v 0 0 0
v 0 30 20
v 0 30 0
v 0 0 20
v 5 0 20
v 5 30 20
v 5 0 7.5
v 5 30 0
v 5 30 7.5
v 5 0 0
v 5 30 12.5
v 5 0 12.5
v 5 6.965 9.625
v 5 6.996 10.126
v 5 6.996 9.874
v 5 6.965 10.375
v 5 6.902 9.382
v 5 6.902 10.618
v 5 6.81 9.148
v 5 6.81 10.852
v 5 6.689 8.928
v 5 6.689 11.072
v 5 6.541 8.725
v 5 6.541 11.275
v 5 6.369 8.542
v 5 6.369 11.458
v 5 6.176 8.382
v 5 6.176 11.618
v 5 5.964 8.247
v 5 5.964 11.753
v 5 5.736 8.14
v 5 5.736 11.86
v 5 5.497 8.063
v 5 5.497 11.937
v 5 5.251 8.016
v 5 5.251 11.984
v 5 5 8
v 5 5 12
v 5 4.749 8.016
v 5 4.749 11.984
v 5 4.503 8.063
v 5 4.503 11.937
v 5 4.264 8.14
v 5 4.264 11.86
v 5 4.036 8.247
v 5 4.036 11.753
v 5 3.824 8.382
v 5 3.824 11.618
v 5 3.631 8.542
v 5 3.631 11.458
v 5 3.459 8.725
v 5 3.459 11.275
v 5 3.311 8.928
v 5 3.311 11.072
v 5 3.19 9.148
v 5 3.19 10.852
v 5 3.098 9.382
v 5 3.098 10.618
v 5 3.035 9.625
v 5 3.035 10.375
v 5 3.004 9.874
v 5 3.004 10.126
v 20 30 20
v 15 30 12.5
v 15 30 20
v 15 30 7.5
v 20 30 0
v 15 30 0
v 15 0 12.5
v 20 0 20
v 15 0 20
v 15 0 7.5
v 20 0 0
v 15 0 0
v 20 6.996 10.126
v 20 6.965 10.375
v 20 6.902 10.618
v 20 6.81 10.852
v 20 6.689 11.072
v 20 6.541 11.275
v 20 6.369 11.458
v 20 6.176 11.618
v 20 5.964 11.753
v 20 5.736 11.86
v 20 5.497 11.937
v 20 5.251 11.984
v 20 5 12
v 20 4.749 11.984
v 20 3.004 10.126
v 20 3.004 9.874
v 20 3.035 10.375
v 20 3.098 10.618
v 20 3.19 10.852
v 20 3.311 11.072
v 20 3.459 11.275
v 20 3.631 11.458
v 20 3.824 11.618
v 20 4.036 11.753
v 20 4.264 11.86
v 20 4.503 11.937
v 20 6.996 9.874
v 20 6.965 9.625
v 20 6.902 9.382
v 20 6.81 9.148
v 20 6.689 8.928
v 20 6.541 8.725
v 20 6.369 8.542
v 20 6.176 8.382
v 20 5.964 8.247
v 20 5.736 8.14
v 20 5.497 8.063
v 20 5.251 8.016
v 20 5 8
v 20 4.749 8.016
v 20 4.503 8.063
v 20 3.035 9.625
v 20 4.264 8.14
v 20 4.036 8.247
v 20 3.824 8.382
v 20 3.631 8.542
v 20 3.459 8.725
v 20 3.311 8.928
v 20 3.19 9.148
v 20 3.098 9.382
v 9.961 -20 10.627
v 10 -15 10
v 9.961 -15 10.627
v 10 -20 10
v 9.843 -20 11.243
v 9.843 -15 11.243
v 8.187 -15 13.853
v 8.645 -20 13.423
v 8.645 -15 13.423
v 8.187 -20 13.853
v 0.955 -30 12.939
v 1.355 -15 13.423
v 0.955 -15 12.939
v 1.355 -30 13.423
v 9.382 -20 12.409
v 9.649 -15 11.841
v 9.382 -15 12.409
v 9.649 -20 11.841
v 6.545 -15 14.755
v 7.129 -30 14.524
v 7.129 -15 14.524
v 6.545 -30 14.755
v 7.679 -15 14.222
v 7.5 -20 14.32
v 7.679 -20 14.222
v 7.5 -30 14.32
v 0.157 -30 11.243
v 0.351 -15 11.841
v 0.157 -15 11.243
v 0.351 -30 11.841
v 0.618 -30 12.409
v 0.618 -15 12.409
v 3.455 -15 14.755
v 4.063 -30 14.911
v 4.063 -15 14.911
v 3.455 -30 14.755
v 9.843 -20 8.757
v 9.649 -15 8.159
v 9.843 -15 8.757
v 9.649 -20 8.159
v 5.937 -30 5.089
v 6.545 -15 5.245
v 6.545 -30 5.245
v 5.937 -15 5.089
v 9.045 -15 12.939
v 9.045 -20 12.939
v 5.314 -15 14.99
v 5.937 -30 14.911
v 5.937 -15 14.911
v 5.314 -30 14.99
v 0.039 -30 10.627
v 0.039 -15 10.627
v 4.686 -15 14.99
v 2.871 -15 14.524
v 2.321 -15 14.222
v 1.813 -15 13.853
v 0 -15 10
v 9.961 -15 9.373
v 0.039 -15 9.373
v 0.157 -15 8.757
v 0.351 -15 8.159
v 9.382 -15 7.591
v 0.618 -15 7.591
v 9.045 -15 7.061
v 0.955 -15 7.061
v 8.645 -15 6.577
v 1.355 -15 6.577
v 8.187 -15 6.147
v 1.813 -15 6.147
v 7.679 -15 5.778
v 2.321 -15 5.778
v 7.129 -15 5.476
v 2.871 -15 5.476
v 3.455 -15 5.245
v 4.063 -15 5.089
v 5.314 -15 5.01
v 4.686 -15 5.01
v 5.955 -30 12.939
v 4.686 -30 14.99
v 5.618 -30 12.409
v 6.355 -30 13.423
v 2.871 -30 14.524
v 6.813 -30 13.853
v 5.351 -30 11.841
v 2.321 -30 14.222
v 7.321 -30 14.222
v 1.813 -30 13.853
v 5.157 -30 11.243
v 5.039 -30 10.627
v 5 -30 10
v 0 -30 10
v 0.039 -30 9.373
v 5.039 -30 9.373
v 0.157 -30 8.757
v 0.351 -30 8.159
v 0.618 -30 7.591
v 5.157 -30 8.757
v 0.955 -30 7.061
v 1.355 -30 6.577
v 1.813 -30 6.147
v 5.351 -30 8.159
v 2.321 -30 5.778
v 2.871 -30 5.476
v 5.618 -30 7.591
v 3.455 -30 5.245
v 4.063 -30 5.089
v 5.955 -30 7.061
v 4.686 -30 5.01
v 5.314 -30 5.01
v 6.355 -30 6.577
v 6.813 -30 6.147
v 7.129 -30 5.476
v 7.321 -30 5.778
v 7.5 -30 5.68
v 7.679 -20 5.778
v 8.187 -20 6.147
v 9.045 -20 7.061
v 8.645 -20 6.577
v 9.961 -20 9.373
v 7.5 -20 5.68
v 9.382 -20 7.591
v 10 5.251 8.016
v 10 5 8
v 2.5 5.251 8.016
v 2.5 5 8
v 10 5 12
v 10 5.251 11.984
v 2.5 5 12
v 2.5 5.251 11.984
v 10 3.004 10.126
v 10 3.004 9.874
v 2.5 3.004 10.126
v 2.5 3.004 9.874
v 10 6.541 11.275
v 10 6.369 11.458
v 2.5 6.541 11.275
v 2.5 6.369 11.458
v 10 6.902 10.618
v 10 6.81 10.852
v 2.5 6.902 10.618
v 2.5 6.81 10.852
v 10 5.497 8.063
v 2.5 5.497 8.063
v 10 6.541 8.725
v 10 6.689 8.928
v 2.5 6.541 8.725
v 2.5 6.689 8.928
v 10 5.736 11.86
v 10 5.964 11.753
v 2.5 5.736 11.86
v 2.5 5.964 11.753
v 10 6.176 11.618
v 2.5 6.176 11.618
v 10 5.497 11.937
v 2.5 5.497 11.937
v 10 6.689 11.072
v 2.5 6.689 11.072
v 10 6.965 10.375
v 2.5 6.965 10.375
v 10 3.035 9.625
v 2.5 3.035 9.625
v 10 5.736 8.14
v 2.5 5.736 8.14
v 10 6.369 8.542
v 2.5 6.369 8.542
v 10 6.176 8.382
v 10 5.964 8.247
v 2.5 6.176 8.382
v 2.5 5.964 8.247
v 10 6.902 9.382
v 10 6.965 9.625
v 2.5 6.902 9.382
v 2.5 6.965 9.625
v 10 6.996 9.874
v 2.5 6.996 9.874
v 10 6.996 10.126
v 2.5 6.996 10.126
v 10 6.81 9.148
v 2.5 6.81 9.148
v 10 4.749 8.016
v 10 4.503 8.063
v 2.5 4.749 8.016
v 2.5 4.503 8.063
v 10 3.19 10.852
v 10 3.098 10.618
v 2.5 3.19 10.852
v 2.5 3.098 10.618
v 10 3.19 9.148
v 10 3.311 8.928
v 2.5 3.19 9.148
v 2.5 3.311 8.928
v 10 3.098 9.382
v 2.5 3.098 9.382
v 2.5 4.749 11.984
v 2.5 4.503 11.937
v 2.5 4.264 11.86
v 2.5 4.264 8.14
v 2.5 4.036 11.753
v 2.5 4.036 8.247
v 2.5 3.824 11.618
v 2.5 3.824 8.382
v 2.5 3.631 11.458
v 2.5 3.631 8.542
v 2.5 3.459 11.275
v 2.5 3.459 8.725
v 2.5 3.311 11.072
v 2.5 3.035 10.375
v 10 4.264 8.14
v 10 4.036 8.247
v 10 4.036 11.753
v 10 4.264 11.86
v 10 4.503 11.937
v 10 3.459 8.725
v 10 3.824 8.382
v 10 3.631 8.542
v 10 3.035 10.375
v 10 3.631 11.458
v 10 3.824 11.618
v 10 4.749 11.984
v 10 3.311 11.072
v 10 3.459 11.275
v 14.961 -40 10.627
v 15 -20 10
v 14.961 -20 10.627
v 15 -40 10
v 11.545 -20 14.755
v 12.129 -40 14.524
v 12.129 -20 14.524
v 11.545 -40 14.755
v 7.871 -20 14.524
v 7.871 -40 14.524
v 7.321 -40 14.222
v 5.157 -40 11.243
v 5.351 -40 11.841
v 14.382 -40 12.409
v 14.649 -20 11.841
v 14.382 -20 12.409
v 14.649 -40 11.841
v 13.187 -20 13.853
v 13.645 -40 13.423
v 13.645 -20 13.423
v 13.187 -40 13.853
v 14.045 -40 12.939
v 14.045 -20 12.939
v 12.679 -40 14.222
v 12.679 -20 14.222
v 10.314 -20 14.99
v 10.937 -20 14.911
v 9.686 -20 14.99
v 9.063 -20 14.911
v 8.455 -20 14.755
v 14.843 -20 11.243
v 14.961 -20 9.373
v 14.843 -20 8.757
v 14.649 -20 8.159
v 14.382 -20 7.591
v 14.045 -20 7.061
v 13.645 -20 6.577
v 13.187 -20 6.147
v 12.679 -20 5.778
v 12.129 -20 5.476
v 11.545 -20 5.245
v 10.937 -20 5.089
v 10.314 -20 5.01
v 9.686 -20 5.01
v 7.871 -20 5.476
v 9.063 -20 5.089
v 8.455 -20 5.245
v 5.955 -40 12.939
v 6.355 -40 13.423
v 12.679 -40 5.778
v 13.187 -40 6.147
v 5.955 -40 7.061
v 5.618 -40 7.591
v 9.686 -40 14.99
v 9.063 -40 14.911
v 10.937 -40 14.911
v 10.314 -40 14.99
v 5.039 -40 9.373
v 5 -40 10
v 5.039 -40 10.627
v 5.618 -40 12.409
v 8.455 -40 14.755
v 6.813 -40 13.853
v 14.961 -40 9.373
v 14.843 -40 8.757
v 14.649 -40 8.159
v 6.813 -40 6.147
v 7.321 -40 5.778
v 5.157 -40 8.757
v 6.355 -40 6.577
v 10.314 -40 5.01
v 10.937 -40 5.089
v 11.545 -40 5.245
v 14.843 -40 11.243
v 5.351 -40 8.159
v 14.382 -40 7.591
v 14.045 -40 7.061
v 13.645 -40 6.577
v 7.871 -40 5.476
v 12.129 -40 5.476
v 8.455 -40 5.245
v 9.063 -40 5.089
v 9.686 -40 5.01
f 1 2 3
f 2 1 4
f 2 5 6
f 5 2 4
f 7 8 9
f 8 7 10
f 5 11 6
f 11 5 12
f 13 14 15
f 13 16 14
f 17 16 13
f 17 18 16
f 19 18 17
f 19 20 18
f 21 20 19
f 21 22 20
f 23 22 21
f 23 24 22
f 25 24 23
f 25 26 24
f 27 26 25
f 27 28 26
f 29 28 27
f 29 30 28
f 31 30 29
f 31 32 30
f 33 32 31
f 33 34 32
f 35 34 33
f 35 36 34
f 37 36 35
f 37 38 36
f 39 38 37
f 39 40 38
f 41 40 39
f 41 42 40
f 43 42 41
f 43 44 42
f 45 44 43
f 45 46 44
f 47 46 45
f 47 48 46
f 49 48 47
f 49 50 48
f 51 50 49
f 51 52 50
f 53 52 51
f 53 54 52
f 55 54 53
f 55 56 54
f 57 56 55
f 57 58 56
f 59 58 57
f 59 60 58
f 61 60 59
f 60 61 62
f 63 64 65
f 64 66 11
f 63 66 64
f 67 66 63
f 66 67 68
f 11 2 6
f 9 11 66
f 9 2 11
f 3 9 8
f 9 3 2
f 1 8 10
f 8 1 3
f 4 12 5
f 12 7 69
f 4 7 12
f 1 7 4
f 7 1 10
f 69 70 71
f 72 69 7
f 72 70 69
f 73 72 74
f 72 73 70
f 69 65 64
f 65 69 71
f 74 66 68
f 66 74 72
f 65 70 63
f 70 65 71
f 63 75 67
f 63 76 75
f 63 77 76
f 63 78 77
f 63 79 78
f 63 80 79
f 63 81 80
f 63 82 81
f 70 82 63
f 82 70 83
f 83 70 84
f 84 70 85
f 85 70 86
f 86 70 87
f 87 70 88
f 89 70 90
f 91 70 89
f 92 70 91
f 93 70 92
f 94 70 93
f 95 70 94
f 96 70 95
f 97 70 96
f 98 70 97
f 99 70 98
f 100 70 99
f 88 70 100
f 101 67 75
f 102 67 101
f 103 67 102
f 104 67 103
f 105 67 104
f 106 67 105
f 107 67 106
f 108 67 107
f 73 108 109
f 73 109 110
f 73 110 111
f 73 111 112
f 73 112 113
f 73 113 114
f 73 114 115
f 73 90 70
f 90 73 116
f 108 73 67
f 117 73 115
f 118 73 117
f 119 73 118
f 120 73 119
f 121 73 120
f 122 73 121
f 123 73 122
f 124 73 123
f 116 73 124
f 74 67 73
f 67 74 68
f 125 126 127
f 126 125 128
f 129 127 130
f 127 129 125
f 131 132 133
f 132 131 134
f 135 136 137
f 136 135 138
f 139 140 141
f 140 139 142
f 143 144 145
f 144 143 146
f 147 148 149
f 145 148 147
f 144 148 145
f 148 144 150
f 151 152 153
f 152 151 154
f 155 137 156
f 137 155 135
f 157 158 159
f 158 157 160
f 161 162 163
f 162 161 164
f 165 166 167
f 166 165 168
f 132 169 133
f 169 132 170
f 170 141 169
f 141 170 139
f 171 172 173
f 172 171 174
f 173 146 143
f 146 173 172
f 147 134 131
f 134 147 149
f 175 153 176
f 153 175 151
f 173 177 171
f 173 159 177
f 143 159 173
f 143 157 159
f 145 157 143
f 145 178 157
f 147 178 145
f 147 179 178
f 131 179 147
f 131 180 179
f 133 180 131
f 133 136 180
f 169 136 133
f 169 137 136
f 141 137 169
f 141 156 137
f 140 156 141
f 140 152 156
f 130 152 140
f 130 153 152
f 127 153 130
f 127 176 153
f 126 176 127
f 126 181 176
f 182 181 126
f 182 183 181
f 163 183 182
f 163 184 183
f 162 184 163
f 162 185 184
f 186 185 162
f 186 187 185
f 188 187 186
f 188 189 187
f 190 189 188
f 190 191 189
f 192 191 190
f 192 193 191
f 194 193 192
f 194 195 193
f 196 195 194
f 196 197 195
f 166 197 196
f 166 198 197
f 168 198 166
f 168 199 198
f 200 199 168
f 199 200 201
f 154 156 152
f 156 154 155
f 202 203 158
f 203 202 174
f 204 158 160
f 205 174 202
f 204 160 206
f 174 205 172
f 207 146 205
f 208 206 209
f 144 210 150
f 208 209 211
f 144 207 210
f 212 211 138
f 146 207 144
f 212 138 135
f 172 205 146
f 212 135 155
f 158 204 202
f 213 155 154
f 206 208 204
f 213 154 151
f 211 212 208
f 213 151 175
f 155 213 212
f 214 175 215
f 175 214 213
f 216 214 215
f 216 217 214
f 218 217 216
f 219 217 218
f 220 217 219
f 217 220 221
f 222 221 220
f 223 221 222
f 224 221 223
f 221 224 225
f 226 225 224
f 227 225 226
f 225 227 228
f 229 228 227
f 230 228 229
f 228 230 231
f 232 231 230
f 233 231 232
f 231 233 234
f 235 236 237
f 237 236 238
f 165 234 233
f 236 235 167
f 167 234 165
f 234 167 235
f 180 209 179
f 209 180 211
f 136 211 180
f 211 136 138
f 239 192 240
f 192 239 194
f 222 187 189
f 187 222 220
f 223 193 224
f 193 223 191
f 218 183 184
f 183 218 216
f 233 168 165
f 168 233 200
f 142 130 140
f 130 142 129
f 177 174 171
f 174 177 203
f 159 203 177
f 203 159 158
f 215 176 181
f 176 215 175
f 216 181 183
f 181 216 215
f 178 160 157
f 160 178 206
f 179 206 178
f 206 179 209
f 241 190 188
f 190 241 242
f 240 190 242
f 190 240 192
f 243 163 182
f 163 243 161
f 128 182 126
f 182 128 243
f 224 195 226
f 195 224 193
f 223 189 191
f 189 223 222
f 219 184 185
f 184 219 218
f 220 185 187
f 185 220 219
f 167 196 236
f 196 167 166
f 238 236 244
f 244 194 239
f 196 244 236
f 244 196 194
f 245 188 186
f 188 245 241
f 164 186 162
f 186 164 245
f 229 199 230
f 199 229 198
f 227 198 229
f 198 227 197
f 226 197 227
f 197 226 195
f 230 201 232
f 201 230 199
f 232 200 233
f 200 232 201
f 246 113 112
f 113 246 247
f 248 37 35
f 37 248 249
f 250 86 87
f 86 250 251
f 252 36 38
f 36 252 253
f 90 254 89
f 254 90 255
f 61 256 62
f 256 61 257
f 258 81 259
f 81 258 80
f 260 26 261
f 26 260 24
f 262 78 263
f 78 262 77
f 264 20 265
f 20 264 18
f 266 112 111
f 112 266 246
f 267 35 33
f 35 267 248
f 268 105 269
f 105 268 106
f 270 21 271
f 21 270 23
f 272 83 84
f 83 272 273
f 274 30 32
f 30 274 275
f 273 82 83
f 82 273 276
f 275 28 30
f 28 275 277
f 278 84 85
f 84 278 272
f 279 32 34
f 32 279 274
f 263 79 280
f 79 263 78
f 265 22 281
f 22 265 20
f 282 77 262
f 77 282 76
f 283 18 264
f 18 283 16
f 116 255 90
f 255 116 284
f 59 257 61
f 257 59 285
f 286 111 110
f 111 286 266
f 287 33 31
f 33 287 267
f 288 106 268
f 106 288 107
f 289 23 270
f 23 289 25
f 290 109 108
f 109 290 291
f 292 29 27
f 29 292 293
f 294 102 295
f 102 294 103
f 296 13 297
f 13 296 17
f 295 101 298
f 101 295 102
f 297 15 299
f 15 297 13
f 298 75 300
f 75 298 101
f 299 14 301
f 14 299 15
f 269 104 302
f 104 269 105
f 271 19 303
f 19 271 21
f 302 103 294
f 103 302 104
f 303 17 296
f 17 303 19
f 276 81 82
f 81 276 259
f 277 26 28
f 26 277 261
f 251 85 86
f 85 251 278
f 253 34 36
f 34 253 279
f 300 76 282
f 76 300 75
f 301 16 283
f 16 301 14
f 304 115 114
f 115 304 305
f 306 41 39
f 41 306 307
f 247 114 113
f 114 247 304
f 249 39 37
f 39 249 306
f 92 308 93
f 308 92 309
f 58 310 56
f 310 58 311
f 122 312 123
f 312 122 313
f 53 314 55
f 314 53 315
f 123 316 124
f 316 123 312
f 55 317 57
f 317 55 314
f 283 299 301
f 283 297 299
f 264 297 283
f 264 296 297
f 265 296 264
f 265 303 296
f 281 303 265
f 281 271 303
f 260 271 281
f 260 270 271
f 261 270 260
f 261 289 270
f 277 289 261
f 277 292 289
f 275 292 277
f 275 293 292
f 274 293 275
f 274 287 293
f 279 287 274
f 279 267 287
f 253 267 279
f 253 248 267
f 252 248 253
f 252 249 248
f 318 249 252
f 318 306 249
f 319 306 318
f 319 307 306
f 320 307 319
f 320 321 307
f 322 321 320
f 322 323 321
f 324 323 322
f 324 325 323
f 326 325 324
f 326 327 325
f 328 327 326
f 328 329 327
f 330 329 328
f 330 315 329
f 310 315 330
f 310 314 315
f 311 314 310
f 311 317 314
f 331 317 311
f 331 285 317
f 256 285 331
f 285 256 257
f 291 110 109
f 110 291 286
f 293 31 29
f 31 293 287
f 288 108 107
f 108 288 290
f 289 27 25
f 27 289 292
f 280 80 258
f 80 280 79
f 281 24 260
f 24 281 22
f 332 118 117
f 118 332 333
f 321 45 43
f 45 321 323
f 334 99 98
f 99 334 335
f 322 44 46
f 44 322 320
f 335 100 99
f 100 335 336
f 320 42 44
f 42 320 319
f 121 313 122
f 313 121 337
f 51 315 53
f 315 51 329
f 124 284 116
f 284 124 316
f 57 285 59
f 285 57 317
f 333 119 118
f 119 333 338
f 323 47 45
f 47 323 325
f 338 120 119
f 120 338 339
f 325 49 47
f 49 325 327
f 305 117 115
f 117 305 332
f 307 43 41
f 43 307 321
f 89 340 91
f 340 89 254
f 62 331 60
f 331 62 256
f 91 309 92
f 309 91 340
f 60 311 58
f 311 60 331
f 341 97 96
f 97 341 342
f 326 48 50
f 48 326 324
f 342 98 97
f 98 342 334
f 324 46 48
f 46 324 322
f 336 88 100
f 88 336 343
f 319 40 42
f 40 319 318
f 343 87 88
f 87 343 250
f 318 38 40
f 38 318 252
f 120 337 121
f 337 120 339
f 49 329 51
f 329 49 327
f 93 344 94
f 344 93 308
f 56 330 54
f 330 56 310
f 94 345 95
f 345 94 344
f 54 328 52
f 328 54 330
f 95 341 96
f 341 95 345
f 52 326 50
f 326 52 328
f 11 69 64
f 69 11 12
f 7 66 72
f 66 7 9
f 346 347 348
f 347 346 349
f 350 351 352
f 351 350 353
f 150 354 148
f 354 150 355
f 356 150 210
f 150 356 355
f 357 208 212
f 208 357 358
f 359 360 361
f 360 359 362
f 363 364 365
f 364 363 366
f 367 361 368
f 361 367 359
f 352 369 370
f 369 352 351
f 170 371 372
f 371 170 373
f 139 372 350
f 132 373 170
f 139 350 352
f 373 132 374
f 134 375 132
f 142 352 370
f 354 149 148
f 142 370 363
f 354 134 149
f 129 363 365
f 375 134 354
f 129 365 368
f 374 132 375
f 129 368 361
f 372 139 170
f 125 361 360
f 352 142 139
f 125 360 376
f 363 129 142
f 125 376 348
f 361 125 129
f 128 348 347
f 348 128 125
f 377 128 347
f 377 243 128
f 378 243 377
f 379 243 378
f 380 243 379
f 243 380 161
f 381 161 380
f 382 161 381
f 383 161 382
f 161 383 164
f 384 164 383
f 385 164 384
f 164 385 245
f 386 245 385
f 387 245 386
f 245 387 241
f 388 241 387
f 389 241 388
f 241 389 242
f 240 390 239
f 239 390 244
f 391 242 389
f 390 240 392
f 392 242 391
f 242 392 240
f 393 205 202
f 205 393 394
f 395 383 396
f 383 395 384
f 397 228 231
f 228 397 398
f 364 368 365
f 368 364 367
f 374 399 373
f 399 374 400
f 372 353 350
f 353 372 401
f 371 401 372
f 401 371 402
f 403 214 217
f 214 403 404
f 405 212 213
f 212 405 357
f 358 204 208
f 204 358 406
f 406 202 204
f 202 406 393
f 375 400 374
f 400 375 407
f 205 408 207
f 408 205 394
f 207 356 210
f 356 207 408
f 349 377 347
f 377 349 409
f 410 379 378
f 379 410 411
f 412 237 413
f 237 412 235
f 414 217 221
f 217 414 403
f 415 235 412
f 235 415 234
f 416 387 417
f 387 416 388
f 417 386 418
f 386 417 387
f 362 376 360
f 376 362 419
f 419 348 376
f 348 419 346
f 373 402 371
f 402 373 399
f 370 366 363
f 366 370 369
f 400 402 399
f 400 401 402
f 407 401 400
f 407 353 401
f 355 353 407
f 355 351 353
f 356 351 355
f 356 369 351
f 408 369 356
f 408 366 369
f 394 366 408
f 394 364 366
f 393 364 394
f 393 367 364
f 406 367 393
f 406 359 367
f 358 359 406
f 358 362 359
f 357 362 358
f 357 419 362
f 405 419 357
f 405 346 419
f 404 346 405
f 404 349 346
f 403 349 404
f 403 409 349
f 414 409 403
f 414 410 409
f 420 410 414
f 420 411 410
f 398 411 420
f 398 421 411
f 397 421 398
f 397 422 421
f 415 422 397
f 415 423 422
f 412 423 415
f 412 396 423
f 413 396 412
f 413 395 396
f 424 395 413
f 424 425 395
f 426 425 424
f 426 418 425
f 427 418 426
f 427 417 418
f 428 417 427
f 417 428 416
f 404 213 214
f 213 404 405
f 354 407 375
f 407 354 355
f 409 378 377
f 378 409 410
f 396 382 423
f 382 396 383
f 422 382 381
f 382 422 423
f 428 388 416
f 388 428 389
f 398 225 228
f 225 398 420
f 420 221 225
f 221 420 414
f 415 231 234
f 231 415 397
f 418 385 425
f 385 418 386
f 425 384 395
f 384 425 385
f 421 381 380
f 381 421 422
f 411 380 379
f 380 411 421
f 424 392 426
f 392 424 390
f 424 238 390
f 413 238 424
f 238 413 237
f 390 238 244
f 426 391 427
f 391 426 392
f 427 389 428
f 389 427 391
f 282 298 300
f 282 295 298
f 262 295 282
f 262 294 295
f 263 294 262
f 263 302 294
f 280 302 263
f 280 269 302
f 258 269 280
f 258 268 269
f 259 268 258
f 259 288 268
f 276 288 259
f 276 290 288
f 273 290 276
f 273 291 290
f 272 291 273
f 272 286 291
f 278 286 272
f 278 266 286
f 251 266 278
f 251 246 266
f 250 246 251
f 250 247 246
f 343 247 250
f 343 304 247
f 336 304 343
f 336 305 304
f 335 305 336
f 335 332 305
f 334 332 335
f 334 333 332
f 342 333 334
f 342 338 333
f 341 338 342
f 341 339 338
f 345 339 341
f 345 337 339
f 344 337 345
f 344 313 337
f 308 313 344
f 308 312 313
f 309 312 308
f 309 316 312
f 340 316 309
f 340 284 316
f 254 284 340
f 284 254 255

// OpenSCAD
// Parameters
fork_thickness = 5;
fork_length = 30;
fork_width = 20;
fork_gap = 10;
hole_diameter = 4;
hole_offset = 5;
shaft_diameter = 10;
shaft_length = 15;

mount_width = fork_gap;
mount_length = fork_length;
mount_thickness = fork_thickness;
mount_hole_diameter = hole_diameter;
mount_hole_offset = hole_offset;
mount_shaft_diameter = shaft_diameter;
mount_shaft_length = 20;

// Forked Connector Head
module forked_connector_head() {
    difference() {
        union() {
            // Left arm
            translate([0, 0, 0])
                cube([fork_thickness, fork_length, fork_width]);

            // Right arm
            translate([fork_thickness + fork_gap, 0, 0])
                cube([fork_thickness, fork_length, fork_width]);

            // Base shaft
            translate([fork_thickness, -shaft_length, fork_width/2])
                rotate([90, 0, 0])
                    cylinder(h = shaft_length, d = shaft_diameter, $fn=50);
        }

        // Holes in arms
        translate([fork_thickness/2, hole_offset, fork_width/2])
            rotate([0, 90, 0])
                cylinder(h = fork_thickness + fork_gap + fork_thickness, d = hole_diameter, $fn=50);
    }
}

// Dual-Hole Mounting Head
module dual_hole_mounting_head() {
    difference() {
        union() {
            // Mounting head
            translate([0, 0, 0])
                cube([mount_width, mount_length, mount_thickness]);

            // Shaft
            translate([mount_width/2, -mount_shaft_length, mount_thickness/2])
                rotate([90, 0, 0])
                    cylinder(h = mount_shaft_length, d = mount_shaft_diameter, $fn=50);
        }

        // Holes
        translate([mount_width/2, hole_offset, mount_thickness/2])
            rotate([0, 90, 0])
                cylinder(h = mount_width + 2, d = mount_hole_diameter, $fn=50);
    }
}

// Assembly
module assembly() {
    forked_connector_head();
    translate([fork_thickness, 0, (fork_width - mount_thickness)/2])
        dual_hole_mounting_head();
}

assembly();
